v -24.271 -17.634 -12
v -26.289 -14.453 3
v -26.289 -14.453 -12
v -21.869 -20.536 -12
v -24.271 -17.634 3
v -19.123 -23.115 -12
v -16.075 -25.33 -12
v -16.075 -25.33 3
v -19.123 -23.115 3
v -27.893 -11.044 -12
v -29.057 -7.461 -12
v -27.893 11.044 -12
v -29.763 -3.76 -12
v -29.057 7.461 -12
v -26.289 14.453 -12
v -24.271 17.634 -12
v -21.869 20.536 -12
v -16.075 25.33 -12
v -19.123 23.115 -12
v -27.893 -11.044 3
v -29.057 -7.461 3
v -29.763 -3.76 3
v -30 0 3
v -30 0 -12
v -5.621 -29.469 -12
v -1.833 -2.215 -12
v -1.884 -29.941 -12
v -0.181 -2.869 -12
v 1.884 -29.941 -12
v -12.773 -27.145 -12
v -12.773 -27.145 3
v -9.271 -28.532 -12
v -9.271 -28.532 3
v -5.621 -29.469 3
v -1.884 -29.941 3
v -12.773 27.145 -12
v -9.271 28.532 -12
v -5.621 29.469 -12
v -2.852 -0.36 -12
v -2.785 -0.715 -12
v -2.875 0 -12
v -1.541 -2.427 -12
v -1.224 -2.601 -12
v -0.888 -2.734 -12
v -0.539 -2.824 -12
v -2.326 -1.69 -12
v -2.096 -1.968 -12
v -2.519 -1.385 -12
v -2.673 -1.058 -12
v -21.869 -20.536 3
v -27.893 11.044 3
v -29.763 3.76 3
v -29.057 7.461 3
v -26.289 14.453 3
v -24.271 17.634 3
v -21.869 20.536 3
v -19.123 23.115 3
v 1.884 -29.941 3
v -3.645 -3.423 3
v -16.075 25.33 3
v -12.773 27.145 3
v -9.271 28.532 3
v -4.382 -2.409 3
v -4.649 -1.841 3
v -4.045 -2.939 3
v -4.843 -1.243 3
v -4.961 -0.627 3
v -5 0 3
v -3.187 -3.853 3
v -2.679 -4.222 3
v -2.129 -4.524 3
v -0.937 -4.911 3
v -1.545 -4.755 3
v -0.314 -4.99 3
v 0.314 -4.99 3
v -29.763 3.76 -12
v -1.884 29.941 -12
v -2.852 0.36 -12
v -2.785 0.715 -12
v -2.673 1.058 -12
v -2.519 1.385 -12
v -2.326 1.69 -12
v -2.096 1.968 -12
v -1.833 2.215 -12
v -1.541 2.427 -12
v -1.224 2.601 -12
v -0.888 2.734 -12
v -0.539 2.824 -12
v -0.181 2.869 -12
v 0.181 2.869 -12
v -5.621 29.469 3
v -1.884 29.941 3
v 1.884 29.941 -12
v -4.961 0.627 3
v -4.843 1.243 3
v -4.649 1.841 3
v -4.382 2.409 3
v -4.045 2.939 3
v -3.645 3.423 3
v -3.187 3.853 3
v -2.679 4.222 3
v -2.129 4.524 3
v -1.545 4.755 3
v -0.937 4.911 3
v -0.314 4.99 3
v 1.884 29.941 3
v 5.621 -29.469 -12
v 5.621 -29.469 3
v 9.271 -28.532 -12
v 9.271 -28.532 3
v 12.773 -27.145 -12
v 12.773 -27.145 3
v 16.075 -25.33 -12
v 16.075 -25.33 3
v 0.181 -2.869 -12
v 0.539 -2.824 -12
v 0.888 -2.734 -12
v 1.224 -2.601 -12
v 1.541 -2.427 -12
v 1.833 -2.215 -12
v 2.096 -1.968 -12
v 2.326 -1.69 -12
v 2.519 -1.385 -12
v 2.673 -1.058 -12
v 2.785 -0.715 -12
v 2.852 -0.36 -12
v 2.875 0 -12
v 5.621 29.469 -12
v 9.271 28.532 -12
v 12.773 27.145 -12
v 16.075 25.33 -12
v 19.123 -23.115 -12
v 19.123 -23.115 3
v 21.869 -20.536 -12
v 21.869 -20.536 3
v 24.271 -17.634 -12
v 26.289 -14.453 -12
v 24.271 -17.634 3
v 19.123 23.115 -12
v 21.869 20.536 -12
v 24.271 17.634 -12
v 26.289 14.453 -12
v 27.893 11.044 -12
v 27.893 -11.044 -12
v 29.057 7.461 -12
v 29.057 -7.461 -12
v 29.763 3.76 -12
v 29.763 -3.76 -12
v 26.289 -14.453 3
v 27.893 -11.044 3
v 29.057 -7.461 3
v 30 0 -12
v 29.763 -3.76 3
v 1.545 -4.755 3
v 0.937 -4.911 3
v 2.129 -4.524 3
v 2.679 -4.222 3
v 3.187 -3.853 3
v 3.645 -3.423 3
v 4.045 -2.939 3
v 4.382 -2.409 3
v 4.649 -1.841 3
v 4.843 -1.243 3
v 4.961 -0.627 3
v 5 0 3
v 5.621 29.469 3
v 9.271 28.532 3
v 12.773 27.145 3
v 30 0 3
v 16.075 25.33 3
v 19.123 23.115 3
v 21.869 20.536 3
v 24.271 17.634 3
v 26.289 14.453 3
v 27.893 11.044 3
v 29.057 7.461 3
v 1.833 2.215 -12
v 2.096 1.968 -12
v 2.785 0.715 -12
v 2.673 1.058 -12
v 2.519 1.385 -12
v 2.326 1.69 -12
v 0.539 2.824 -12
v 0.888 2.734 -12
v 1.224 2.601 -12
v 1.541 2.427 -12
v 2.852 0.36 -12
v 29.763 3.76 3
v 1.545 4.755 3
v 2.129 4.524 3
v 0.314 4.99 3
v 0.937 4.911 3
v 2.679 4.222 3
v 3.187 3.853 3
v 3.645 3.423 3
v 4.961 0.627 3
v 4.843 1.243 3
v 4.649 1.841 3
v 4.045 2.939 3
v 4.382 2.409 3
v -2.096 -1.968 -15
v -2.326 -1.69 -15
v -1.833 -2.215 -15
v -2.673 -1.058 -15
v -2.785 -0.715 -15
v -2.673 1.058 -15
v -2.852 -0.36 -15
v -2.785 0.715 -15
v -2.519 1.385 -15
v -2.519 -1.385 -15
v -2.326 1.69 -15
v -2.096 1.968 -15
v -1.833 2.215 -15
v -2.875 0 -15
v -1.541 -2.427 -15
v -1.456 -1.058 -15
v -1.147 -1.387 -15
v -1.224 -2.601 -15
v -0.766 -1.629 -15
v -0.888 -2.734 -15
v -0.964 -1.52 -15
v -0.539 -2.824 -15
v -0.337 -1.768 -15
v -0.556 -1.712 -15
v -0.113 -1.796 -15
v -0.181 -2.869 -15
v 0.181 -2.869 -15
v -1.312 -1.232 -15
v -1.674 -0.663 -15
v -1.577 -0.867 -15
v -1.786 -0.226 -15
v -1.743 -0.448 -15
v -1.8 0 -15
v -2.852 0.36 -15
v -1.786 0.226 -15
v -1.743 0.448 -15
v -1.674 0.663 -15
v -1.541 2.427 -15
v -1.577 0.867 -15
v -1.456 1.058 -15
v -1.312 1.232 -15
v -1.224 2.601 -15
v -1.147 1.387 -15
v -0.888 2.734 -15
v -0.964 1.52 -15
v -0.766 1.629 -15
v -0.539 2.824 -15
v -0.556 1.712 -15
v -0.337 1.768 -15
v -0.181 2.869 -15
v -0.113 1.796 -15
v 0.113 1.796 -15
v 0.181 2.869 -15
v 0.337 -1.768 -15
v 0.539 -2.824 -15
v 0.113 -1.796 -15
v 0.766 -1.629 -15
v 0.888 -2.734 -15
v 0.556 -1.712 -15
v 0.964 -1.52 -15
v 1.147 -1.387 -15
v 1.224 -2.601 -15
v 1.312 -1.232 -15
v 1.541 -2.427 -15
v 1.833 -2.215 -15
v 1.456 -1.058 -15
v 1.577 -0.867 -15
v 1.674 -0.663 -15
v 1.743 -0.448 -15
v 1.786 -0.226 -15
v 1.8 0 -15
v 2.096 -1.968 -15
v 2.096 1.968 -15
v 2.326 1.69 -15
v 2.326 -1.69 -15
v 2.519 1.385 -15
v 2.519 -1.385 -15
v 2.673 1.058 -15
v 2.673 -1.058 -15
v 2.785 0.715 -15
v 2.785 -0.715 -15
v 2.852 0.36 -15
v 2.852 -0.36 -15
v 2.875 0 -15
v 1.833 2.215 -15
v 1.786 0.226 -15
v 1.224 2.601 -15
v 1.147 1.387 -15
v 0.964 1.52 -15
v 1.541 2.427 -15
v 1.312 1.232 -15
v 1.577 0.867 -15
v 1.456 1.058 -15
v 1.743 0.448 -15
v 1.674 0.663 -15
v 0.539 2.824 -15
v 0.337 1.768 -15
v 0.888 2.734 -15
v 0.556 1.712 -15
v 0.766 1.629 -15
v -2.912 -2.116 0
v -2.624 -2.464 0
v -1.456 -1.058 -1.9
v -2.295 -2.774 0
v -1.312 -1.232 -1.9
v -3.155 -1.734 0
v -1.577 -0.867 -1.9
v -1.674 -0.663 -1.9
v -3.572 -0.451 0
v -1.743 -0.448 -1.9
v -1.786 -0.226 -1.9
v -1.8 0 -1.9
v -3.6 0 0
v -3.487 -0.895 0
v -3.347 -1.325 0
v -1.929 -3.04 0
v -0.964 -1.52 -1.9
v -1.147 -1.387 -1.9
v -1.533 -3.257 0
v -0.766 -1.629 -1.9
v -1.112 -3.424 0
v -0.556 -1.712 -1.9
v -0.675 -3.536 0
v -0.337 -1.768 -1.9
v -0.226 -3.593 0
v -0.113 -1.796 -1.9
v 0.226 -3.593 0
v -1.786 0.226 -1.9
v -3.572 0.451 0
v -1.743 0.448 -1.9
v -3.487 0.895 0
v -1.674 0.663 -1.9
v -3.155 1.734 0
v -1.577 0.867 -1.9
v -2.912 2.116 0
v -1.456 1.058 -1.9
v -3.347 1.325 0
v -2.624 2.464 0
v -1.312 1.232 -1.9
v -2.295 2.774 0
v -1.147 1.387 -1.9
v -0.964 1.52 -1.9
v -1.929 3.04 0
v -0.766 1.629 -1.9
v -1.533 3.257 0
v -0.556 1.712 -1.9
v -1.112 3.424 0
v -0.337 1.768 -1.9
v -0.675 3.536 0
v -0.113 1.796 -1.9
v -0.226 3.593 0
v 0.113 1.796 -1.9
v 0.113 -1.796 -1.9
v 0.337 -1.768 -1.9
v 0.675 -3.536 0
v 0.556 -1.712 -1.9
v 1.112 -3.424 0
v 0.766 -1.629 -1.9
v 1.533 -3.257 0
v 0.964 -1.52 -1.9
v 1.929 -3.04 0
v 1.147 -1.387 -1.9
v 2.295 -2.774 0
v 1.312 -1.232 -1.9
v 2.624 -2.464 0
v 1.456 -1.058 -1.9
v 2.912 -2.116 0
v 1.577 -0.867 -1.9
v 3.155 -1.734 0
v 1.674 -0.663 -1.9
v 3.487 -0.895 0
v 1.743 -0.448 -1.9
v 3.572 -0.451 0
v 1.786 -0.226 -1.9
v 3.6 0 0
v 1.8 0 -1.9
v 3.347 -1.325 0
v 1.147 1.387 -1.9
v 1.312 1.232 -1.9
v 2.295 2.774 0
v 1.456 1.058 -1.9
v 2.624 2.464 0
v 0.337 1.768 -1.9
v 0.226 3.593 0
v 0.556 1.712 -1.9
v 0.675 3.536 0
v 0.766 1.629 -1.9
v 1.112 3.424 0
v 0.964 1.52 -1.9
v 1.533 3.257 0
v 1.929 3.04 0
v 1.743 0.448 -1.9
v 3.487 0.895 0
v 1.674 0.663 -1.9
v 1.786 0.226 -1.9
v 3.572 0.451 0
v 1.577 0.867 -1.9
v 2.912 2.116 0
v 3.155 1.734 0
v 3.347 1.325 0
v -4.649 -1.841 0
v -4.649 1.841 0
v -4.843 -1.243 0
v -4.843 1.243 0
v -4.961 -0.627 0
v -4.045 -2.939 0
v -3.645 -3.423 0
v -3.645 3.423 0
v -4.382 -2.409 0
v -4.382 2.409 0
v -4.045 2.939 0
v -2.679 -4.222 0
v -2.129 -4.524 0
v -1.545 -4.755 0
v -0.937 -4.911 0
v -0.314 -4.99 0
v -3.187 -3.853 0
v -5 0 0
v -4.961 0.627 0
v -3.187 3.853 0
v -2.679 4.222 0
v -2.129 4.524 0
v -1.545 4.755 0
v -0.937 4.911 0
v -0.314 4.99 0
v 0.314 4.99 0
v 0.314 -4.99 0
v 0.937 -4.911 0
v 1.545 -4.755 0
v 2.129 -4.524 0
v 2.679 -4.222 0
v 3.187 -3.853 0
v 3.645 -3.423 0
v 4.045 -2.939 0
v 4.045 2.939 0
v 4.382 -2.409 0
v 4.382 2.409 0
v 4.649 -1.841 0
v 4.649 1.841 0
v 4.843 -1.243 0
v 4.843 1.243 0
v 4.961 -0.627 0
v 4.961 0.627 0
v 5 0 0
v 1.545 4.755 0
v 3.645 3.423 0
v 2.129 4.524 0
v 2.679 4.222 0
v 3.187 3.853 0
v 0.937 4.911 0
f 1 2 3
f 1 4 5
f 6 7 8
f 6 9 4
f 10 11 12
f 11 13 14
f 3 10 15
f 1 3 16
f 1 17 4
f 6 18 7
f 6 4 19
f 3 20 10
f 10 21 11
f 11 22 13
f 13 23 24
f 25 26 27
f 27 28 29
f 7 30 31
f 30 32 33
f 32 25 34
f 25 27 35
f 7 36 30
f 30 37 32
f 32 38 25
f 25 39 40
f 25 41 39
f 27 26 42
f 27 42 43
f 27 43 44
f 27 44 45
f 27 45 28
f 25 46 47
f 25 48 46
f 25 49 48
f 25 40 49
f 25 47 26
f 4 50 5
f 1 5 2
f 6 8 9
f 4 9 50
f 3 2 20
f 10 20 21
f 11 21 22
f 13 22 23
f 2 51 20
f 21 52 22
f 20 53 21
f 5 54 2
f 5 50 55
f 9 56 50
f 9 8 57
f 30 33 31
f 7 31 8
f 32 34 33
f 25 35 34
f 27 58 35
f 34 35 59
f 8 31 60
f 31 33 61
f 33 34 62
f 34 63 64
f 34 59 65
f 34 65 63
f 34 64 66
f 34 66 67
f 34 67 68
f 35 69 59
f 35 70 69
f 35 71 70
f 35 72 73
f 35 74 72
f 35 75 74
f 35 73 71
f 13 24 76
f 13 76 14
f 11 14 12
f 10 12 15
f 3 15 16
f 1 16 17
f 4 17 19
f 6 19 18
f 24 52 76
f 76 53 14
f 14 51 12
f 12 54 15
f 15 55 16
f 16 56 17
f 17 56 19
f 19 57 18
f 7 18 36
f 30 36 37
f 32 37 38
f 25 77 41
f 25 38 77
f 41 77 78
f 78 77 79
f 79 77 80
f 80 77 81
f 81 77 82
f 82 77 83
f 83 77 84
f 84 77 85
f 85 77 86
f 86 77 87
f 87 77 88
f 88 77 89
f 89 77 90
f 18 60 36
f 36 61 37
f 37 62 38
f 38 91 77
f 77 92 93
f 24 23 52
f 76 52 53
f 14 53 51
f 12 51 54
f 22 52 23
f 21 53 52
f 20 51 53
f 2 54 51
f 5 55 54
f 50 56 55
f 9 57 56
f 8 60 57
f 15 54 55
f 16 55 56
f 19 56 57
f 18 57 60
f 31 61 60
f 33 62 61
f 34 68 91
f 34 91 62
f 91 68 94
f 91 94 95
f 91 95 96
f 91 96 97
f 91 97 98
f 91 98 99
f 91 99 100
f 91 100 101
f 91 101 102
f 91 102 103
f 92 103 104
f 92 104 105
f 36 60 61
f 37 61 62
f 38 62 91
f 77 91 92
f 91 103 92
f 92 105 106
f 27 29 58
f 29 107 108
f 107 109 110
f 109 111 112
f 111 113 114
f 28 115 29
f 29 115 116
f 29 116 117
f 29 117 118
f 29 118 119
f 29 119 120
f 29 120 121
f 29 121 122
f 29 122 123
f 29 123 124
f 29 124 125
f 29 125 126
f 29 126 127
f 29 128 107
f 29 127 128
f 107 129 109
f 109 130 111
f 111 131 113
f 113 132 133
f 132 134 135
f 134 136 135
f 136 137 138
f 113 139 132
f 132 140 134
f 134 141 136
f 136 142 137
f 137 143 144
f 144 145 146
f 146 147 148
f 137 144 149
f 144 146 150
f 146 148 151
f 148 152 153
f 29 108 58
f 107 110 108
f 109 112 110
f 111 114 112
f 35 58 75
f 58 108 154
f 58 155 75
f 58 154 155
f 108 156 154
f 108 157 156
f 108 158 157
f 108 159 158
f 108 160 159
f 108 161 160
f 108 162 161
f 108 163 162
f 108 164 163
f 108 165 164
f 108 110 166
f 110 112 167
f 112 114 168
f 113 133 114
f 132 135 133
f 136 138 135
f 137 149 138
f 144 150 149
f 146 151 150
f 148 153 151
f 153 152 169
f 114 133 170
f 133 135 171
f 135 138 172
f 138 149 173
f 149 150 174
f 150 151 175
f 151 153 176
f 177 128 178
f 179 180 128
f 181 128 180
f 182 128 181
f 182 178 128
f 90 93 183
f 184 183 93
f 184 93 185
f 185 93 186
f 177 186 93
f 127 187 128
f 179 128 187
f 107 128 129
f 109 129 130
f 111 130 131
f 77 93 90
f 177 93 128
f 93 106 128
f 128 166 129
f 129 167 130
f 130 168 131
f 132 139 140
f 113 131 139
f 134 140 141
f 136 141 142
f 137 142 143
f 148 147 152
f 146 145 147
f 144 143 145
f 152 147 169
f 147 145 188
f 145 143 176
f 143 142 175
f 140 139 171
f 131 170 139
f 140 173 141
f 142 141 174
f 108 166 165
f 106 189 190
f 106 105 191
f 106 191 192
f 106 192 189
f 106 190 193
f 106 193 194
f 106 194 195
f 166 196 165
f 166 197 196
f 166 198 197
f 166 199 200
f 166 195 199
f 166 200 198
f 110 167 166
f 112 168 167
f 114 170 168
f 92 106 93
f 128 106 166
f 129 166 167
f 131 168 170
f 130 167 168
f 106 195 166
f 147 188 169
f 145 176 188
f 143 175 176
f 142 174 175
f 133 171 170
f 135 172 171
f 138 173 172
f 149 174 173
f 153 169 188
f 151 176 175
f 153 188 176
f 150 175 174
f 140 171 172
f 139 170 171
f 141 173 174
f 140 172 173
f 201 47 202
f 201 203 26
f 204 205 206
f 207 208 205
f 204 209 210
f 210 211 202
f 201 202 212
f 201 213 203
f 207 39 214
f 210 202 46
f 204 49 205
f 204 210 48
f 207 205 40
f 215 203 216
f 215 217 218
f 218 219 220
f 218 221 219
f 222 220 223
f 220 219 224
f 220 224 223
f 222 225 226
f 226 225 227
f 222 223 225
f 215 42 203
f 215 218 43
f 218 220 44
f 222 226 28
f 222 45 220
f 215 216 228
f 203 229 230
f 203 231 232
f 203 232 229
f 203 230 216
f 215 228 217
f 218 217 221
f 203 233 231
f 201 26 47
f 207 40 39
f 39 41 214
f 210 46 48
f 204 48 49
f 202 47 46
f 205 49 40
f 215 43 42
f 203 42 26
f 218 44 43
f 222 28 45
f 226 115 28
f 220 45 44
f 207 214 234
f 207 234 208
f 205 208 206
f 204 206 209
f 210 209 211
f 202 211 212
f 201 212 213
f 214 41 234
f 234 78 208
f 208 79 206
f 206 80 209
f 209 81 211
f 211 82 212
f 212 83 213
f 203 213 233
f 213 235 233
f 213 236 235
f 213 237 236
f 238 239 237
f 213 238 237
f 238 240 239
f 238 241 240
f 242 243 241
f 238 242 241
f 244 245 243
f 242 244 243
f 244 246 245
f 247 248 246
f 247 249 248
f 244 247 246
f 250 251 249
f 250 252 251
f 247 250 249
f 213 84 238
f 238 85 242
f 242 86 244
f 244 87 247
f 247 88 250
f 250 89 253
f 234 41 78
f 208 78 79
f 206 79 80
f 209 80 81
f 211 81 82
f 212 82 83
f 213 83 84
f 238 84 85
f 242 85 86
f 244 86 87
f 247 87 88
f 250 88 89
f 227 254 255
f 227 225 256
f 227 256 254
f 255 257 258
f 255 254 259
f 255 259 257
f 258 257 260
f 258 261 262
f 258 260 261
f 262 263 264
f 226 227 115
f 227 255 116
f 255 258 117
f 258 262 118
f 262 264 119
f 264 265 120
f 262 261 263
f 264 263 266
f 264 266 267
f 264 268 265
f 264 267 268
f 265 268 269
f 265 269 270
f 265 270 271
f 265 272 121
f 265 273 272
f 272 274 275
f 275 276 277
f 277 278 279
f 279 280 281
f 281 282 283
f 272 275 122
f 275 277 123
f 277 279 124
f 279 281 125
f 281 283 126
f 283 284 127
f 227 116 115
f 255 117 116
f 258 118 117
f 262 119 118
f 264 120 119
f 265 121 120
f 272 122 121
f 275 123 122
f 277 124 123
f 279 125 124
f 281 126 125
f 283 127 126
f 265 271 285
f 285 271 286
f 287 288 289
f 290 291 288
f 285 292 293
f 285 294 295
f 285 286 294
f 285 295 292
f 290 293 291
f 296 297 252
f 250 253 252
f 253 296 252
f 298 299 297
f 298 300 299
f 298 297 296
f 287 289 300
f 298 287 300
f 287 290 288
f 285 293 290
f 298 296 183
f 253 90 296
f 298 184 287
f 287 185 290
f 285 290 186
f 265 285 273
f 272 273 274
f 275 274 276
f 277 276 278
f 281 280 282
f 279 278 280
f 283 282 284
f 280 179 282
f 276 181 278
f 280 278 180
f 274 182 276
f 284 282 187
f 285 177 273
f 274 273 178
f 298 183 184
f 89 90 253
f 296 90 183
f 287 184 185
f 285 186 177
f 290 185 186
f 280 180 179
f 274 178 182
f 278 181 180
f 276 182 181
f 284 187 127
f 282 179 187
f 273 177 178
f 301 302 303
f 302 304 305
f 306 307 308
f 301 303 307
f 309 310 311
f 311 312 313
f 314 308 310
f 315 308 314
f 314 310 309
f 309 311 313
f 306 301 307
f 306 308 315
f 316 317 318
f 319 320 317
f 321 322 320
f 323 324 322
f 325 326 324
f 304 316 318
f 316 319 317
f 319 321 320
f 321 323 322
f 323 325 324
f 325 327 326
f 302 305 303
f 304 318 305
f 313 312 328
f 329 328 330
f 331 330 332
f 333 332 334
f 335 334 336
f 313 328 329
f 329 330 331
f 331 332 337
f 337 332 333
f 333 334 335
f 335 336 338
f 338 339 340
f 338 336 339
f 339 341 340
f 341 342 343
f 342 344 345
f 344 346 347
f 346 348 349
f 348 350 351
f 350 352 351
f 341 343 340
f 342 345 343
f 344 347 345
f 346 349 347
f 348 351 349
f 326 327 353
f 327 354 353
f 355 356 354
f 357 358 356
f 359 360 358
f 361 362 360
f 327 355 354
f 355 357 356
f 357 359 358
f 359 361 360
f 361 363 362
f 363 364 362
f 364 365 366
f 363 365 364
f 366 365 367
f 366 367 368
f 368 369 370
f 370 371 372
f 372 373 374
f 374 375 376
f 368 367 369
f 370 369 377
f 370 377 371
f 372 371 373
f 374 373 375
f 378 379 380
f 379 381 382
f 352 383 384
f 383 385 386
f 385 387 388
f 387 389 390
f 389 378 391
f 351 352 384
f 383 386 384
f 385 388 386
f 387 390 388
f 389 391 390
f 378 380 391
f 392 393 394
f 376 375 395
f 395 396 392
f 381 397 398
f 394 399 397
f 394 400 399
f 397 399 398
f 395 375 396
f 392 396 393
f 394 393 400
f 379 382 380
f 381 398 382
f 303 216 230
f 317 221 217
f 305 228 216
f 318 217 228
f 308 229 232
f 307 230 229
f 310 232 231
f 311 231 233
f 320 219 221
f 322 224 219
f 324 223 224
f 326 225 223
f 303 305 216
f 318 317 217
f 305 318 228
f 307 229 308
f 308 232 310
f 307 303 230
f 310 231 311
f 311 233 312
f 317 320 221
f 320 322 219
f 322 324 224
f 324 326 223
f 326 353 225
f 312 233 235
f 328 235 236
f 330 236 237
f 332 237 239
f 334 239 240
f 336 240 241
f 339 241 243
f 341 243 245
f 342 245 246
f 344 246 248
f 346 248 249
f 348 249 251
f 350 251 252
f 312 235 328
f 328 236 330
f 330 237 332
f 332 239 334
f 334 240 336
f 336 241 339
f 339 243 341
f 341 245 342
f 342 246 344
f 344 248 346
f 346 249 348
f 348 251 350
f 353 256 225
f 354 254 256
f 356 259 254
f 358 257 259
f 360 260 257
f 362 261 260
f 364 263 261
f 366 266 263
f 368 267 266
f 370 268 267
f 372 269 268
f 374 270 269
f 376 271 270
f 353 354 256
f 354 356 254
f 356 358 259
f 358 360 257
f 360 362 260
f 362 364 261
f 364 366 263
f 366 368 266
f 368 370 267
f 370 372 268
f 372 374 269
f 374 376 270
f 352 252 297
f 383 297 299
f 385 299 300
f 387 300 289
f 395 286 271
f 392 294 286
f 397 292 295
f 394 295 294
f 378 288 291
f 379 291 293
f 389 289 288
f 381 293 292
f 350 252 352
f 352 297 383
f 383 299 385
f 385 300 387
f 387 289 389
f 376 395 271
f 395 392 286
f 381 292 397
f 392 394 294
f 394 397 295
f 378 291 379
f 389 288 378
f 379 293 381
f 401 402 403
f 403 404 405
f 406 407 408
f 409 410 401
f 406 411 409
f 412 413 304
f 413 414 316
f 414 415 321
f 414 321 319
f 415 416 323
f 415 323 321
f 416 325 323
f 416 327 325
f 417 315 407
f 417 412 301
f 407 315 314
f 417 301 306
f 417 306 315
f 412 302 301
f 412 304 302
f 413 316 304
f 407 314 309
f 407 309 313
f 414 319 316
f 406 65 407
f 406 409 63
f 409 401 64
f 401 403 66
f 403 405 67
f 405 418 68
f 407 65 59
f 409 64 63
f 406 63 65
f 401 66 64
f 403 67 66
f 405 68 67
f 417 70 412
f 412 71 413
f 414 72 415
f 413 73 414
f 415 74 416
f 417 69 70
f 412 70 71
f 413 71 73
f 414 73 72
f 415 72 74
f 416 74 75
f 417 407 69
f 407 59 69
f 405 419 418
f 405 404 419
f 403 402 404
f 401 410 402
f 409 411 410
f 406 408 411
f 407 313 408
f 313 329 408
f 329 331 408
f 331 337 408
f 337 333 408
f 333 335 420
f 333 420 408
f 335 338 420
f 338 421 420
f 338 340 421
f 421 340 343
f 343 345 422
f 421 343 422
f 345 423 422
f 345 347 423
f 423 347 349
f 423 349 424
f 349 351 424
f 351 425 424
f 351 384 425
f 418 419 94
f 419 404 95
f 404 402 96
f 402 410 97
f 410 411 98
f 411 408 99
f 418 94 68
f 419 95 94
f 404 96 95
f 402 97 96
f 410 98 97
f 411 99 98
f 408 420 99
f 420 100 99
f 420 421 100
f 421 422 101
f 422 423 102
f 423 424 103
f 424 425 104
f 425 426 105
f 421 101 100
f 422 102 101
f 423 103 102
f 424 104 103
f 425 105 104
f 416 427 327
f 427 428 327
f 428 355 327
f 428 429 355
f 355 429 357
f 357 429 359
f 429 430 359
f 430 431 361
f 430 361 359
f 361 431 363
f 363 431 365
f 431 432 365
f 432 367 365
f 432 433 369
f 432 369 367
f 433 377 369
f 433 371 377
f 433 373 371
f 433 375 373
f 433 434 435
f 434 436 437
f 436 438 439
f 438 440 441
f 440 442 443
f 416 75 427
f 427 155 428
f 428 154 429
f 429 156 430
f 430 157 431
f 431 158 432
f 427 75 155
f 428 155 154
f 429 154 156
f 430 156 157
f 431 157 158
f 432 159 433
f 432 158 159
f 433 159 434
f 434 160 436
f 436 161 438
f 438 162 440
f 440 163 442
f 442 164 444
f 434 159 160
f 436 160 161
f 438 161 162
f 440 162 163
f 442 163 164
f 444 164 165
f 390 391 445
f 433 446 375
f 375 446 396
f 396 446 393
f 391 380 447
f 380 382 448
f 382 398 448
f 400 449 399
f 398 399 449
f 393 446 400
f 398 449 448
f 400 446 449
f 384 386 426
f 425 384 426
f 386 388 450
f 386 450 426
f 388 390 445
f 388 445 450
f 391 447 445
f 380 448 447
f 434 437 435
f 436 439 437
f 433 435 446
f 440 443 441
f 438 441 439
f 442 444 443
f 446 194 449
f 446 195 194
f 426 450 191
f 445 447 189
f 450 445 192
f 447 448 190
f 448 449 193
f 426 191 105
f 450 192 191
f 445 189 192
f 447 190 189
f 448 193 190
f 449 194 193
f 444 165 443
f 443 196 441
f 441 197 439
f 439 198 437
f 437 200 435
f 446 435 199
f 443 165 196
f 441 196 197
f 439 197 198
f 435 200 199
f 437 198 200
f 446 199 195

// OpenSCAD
$fn = 50;

difference() {
	union() {
		translate(v = [0, 0, -12.0]) {
			cylinder(h = 15, r = 30.0);
		}
		#translate(v = [0, 0, -15.0]) {
			cylinder(h = 15, r = 2.875);
		}
	}
	union() {
		translate(v = [0, 0, 0]) {
			rotate(a = [0, 0, 0]) {
				difference() {
					union() {
						translate(v = [0, 0, -15.0]) {
							cylinder(h = 15, r = 1.5);
						}
						translate(v = [0, 0, -1.9]) {
							cylinder(h = 1.9, r1 = 1.8, r2 = 3.6);
						}
						translate(v = [0, 0, -15.0]) {
							cylinder(h = 15, r = 1.8);
						}
						translate(v = [0, 0, -15.0]) {
							cylinder(h = 15, r = 1.5);
						}
					}
					union();
				}
			}
		}
		#cylinder(h = 3, r = 5.0);
	}
}
